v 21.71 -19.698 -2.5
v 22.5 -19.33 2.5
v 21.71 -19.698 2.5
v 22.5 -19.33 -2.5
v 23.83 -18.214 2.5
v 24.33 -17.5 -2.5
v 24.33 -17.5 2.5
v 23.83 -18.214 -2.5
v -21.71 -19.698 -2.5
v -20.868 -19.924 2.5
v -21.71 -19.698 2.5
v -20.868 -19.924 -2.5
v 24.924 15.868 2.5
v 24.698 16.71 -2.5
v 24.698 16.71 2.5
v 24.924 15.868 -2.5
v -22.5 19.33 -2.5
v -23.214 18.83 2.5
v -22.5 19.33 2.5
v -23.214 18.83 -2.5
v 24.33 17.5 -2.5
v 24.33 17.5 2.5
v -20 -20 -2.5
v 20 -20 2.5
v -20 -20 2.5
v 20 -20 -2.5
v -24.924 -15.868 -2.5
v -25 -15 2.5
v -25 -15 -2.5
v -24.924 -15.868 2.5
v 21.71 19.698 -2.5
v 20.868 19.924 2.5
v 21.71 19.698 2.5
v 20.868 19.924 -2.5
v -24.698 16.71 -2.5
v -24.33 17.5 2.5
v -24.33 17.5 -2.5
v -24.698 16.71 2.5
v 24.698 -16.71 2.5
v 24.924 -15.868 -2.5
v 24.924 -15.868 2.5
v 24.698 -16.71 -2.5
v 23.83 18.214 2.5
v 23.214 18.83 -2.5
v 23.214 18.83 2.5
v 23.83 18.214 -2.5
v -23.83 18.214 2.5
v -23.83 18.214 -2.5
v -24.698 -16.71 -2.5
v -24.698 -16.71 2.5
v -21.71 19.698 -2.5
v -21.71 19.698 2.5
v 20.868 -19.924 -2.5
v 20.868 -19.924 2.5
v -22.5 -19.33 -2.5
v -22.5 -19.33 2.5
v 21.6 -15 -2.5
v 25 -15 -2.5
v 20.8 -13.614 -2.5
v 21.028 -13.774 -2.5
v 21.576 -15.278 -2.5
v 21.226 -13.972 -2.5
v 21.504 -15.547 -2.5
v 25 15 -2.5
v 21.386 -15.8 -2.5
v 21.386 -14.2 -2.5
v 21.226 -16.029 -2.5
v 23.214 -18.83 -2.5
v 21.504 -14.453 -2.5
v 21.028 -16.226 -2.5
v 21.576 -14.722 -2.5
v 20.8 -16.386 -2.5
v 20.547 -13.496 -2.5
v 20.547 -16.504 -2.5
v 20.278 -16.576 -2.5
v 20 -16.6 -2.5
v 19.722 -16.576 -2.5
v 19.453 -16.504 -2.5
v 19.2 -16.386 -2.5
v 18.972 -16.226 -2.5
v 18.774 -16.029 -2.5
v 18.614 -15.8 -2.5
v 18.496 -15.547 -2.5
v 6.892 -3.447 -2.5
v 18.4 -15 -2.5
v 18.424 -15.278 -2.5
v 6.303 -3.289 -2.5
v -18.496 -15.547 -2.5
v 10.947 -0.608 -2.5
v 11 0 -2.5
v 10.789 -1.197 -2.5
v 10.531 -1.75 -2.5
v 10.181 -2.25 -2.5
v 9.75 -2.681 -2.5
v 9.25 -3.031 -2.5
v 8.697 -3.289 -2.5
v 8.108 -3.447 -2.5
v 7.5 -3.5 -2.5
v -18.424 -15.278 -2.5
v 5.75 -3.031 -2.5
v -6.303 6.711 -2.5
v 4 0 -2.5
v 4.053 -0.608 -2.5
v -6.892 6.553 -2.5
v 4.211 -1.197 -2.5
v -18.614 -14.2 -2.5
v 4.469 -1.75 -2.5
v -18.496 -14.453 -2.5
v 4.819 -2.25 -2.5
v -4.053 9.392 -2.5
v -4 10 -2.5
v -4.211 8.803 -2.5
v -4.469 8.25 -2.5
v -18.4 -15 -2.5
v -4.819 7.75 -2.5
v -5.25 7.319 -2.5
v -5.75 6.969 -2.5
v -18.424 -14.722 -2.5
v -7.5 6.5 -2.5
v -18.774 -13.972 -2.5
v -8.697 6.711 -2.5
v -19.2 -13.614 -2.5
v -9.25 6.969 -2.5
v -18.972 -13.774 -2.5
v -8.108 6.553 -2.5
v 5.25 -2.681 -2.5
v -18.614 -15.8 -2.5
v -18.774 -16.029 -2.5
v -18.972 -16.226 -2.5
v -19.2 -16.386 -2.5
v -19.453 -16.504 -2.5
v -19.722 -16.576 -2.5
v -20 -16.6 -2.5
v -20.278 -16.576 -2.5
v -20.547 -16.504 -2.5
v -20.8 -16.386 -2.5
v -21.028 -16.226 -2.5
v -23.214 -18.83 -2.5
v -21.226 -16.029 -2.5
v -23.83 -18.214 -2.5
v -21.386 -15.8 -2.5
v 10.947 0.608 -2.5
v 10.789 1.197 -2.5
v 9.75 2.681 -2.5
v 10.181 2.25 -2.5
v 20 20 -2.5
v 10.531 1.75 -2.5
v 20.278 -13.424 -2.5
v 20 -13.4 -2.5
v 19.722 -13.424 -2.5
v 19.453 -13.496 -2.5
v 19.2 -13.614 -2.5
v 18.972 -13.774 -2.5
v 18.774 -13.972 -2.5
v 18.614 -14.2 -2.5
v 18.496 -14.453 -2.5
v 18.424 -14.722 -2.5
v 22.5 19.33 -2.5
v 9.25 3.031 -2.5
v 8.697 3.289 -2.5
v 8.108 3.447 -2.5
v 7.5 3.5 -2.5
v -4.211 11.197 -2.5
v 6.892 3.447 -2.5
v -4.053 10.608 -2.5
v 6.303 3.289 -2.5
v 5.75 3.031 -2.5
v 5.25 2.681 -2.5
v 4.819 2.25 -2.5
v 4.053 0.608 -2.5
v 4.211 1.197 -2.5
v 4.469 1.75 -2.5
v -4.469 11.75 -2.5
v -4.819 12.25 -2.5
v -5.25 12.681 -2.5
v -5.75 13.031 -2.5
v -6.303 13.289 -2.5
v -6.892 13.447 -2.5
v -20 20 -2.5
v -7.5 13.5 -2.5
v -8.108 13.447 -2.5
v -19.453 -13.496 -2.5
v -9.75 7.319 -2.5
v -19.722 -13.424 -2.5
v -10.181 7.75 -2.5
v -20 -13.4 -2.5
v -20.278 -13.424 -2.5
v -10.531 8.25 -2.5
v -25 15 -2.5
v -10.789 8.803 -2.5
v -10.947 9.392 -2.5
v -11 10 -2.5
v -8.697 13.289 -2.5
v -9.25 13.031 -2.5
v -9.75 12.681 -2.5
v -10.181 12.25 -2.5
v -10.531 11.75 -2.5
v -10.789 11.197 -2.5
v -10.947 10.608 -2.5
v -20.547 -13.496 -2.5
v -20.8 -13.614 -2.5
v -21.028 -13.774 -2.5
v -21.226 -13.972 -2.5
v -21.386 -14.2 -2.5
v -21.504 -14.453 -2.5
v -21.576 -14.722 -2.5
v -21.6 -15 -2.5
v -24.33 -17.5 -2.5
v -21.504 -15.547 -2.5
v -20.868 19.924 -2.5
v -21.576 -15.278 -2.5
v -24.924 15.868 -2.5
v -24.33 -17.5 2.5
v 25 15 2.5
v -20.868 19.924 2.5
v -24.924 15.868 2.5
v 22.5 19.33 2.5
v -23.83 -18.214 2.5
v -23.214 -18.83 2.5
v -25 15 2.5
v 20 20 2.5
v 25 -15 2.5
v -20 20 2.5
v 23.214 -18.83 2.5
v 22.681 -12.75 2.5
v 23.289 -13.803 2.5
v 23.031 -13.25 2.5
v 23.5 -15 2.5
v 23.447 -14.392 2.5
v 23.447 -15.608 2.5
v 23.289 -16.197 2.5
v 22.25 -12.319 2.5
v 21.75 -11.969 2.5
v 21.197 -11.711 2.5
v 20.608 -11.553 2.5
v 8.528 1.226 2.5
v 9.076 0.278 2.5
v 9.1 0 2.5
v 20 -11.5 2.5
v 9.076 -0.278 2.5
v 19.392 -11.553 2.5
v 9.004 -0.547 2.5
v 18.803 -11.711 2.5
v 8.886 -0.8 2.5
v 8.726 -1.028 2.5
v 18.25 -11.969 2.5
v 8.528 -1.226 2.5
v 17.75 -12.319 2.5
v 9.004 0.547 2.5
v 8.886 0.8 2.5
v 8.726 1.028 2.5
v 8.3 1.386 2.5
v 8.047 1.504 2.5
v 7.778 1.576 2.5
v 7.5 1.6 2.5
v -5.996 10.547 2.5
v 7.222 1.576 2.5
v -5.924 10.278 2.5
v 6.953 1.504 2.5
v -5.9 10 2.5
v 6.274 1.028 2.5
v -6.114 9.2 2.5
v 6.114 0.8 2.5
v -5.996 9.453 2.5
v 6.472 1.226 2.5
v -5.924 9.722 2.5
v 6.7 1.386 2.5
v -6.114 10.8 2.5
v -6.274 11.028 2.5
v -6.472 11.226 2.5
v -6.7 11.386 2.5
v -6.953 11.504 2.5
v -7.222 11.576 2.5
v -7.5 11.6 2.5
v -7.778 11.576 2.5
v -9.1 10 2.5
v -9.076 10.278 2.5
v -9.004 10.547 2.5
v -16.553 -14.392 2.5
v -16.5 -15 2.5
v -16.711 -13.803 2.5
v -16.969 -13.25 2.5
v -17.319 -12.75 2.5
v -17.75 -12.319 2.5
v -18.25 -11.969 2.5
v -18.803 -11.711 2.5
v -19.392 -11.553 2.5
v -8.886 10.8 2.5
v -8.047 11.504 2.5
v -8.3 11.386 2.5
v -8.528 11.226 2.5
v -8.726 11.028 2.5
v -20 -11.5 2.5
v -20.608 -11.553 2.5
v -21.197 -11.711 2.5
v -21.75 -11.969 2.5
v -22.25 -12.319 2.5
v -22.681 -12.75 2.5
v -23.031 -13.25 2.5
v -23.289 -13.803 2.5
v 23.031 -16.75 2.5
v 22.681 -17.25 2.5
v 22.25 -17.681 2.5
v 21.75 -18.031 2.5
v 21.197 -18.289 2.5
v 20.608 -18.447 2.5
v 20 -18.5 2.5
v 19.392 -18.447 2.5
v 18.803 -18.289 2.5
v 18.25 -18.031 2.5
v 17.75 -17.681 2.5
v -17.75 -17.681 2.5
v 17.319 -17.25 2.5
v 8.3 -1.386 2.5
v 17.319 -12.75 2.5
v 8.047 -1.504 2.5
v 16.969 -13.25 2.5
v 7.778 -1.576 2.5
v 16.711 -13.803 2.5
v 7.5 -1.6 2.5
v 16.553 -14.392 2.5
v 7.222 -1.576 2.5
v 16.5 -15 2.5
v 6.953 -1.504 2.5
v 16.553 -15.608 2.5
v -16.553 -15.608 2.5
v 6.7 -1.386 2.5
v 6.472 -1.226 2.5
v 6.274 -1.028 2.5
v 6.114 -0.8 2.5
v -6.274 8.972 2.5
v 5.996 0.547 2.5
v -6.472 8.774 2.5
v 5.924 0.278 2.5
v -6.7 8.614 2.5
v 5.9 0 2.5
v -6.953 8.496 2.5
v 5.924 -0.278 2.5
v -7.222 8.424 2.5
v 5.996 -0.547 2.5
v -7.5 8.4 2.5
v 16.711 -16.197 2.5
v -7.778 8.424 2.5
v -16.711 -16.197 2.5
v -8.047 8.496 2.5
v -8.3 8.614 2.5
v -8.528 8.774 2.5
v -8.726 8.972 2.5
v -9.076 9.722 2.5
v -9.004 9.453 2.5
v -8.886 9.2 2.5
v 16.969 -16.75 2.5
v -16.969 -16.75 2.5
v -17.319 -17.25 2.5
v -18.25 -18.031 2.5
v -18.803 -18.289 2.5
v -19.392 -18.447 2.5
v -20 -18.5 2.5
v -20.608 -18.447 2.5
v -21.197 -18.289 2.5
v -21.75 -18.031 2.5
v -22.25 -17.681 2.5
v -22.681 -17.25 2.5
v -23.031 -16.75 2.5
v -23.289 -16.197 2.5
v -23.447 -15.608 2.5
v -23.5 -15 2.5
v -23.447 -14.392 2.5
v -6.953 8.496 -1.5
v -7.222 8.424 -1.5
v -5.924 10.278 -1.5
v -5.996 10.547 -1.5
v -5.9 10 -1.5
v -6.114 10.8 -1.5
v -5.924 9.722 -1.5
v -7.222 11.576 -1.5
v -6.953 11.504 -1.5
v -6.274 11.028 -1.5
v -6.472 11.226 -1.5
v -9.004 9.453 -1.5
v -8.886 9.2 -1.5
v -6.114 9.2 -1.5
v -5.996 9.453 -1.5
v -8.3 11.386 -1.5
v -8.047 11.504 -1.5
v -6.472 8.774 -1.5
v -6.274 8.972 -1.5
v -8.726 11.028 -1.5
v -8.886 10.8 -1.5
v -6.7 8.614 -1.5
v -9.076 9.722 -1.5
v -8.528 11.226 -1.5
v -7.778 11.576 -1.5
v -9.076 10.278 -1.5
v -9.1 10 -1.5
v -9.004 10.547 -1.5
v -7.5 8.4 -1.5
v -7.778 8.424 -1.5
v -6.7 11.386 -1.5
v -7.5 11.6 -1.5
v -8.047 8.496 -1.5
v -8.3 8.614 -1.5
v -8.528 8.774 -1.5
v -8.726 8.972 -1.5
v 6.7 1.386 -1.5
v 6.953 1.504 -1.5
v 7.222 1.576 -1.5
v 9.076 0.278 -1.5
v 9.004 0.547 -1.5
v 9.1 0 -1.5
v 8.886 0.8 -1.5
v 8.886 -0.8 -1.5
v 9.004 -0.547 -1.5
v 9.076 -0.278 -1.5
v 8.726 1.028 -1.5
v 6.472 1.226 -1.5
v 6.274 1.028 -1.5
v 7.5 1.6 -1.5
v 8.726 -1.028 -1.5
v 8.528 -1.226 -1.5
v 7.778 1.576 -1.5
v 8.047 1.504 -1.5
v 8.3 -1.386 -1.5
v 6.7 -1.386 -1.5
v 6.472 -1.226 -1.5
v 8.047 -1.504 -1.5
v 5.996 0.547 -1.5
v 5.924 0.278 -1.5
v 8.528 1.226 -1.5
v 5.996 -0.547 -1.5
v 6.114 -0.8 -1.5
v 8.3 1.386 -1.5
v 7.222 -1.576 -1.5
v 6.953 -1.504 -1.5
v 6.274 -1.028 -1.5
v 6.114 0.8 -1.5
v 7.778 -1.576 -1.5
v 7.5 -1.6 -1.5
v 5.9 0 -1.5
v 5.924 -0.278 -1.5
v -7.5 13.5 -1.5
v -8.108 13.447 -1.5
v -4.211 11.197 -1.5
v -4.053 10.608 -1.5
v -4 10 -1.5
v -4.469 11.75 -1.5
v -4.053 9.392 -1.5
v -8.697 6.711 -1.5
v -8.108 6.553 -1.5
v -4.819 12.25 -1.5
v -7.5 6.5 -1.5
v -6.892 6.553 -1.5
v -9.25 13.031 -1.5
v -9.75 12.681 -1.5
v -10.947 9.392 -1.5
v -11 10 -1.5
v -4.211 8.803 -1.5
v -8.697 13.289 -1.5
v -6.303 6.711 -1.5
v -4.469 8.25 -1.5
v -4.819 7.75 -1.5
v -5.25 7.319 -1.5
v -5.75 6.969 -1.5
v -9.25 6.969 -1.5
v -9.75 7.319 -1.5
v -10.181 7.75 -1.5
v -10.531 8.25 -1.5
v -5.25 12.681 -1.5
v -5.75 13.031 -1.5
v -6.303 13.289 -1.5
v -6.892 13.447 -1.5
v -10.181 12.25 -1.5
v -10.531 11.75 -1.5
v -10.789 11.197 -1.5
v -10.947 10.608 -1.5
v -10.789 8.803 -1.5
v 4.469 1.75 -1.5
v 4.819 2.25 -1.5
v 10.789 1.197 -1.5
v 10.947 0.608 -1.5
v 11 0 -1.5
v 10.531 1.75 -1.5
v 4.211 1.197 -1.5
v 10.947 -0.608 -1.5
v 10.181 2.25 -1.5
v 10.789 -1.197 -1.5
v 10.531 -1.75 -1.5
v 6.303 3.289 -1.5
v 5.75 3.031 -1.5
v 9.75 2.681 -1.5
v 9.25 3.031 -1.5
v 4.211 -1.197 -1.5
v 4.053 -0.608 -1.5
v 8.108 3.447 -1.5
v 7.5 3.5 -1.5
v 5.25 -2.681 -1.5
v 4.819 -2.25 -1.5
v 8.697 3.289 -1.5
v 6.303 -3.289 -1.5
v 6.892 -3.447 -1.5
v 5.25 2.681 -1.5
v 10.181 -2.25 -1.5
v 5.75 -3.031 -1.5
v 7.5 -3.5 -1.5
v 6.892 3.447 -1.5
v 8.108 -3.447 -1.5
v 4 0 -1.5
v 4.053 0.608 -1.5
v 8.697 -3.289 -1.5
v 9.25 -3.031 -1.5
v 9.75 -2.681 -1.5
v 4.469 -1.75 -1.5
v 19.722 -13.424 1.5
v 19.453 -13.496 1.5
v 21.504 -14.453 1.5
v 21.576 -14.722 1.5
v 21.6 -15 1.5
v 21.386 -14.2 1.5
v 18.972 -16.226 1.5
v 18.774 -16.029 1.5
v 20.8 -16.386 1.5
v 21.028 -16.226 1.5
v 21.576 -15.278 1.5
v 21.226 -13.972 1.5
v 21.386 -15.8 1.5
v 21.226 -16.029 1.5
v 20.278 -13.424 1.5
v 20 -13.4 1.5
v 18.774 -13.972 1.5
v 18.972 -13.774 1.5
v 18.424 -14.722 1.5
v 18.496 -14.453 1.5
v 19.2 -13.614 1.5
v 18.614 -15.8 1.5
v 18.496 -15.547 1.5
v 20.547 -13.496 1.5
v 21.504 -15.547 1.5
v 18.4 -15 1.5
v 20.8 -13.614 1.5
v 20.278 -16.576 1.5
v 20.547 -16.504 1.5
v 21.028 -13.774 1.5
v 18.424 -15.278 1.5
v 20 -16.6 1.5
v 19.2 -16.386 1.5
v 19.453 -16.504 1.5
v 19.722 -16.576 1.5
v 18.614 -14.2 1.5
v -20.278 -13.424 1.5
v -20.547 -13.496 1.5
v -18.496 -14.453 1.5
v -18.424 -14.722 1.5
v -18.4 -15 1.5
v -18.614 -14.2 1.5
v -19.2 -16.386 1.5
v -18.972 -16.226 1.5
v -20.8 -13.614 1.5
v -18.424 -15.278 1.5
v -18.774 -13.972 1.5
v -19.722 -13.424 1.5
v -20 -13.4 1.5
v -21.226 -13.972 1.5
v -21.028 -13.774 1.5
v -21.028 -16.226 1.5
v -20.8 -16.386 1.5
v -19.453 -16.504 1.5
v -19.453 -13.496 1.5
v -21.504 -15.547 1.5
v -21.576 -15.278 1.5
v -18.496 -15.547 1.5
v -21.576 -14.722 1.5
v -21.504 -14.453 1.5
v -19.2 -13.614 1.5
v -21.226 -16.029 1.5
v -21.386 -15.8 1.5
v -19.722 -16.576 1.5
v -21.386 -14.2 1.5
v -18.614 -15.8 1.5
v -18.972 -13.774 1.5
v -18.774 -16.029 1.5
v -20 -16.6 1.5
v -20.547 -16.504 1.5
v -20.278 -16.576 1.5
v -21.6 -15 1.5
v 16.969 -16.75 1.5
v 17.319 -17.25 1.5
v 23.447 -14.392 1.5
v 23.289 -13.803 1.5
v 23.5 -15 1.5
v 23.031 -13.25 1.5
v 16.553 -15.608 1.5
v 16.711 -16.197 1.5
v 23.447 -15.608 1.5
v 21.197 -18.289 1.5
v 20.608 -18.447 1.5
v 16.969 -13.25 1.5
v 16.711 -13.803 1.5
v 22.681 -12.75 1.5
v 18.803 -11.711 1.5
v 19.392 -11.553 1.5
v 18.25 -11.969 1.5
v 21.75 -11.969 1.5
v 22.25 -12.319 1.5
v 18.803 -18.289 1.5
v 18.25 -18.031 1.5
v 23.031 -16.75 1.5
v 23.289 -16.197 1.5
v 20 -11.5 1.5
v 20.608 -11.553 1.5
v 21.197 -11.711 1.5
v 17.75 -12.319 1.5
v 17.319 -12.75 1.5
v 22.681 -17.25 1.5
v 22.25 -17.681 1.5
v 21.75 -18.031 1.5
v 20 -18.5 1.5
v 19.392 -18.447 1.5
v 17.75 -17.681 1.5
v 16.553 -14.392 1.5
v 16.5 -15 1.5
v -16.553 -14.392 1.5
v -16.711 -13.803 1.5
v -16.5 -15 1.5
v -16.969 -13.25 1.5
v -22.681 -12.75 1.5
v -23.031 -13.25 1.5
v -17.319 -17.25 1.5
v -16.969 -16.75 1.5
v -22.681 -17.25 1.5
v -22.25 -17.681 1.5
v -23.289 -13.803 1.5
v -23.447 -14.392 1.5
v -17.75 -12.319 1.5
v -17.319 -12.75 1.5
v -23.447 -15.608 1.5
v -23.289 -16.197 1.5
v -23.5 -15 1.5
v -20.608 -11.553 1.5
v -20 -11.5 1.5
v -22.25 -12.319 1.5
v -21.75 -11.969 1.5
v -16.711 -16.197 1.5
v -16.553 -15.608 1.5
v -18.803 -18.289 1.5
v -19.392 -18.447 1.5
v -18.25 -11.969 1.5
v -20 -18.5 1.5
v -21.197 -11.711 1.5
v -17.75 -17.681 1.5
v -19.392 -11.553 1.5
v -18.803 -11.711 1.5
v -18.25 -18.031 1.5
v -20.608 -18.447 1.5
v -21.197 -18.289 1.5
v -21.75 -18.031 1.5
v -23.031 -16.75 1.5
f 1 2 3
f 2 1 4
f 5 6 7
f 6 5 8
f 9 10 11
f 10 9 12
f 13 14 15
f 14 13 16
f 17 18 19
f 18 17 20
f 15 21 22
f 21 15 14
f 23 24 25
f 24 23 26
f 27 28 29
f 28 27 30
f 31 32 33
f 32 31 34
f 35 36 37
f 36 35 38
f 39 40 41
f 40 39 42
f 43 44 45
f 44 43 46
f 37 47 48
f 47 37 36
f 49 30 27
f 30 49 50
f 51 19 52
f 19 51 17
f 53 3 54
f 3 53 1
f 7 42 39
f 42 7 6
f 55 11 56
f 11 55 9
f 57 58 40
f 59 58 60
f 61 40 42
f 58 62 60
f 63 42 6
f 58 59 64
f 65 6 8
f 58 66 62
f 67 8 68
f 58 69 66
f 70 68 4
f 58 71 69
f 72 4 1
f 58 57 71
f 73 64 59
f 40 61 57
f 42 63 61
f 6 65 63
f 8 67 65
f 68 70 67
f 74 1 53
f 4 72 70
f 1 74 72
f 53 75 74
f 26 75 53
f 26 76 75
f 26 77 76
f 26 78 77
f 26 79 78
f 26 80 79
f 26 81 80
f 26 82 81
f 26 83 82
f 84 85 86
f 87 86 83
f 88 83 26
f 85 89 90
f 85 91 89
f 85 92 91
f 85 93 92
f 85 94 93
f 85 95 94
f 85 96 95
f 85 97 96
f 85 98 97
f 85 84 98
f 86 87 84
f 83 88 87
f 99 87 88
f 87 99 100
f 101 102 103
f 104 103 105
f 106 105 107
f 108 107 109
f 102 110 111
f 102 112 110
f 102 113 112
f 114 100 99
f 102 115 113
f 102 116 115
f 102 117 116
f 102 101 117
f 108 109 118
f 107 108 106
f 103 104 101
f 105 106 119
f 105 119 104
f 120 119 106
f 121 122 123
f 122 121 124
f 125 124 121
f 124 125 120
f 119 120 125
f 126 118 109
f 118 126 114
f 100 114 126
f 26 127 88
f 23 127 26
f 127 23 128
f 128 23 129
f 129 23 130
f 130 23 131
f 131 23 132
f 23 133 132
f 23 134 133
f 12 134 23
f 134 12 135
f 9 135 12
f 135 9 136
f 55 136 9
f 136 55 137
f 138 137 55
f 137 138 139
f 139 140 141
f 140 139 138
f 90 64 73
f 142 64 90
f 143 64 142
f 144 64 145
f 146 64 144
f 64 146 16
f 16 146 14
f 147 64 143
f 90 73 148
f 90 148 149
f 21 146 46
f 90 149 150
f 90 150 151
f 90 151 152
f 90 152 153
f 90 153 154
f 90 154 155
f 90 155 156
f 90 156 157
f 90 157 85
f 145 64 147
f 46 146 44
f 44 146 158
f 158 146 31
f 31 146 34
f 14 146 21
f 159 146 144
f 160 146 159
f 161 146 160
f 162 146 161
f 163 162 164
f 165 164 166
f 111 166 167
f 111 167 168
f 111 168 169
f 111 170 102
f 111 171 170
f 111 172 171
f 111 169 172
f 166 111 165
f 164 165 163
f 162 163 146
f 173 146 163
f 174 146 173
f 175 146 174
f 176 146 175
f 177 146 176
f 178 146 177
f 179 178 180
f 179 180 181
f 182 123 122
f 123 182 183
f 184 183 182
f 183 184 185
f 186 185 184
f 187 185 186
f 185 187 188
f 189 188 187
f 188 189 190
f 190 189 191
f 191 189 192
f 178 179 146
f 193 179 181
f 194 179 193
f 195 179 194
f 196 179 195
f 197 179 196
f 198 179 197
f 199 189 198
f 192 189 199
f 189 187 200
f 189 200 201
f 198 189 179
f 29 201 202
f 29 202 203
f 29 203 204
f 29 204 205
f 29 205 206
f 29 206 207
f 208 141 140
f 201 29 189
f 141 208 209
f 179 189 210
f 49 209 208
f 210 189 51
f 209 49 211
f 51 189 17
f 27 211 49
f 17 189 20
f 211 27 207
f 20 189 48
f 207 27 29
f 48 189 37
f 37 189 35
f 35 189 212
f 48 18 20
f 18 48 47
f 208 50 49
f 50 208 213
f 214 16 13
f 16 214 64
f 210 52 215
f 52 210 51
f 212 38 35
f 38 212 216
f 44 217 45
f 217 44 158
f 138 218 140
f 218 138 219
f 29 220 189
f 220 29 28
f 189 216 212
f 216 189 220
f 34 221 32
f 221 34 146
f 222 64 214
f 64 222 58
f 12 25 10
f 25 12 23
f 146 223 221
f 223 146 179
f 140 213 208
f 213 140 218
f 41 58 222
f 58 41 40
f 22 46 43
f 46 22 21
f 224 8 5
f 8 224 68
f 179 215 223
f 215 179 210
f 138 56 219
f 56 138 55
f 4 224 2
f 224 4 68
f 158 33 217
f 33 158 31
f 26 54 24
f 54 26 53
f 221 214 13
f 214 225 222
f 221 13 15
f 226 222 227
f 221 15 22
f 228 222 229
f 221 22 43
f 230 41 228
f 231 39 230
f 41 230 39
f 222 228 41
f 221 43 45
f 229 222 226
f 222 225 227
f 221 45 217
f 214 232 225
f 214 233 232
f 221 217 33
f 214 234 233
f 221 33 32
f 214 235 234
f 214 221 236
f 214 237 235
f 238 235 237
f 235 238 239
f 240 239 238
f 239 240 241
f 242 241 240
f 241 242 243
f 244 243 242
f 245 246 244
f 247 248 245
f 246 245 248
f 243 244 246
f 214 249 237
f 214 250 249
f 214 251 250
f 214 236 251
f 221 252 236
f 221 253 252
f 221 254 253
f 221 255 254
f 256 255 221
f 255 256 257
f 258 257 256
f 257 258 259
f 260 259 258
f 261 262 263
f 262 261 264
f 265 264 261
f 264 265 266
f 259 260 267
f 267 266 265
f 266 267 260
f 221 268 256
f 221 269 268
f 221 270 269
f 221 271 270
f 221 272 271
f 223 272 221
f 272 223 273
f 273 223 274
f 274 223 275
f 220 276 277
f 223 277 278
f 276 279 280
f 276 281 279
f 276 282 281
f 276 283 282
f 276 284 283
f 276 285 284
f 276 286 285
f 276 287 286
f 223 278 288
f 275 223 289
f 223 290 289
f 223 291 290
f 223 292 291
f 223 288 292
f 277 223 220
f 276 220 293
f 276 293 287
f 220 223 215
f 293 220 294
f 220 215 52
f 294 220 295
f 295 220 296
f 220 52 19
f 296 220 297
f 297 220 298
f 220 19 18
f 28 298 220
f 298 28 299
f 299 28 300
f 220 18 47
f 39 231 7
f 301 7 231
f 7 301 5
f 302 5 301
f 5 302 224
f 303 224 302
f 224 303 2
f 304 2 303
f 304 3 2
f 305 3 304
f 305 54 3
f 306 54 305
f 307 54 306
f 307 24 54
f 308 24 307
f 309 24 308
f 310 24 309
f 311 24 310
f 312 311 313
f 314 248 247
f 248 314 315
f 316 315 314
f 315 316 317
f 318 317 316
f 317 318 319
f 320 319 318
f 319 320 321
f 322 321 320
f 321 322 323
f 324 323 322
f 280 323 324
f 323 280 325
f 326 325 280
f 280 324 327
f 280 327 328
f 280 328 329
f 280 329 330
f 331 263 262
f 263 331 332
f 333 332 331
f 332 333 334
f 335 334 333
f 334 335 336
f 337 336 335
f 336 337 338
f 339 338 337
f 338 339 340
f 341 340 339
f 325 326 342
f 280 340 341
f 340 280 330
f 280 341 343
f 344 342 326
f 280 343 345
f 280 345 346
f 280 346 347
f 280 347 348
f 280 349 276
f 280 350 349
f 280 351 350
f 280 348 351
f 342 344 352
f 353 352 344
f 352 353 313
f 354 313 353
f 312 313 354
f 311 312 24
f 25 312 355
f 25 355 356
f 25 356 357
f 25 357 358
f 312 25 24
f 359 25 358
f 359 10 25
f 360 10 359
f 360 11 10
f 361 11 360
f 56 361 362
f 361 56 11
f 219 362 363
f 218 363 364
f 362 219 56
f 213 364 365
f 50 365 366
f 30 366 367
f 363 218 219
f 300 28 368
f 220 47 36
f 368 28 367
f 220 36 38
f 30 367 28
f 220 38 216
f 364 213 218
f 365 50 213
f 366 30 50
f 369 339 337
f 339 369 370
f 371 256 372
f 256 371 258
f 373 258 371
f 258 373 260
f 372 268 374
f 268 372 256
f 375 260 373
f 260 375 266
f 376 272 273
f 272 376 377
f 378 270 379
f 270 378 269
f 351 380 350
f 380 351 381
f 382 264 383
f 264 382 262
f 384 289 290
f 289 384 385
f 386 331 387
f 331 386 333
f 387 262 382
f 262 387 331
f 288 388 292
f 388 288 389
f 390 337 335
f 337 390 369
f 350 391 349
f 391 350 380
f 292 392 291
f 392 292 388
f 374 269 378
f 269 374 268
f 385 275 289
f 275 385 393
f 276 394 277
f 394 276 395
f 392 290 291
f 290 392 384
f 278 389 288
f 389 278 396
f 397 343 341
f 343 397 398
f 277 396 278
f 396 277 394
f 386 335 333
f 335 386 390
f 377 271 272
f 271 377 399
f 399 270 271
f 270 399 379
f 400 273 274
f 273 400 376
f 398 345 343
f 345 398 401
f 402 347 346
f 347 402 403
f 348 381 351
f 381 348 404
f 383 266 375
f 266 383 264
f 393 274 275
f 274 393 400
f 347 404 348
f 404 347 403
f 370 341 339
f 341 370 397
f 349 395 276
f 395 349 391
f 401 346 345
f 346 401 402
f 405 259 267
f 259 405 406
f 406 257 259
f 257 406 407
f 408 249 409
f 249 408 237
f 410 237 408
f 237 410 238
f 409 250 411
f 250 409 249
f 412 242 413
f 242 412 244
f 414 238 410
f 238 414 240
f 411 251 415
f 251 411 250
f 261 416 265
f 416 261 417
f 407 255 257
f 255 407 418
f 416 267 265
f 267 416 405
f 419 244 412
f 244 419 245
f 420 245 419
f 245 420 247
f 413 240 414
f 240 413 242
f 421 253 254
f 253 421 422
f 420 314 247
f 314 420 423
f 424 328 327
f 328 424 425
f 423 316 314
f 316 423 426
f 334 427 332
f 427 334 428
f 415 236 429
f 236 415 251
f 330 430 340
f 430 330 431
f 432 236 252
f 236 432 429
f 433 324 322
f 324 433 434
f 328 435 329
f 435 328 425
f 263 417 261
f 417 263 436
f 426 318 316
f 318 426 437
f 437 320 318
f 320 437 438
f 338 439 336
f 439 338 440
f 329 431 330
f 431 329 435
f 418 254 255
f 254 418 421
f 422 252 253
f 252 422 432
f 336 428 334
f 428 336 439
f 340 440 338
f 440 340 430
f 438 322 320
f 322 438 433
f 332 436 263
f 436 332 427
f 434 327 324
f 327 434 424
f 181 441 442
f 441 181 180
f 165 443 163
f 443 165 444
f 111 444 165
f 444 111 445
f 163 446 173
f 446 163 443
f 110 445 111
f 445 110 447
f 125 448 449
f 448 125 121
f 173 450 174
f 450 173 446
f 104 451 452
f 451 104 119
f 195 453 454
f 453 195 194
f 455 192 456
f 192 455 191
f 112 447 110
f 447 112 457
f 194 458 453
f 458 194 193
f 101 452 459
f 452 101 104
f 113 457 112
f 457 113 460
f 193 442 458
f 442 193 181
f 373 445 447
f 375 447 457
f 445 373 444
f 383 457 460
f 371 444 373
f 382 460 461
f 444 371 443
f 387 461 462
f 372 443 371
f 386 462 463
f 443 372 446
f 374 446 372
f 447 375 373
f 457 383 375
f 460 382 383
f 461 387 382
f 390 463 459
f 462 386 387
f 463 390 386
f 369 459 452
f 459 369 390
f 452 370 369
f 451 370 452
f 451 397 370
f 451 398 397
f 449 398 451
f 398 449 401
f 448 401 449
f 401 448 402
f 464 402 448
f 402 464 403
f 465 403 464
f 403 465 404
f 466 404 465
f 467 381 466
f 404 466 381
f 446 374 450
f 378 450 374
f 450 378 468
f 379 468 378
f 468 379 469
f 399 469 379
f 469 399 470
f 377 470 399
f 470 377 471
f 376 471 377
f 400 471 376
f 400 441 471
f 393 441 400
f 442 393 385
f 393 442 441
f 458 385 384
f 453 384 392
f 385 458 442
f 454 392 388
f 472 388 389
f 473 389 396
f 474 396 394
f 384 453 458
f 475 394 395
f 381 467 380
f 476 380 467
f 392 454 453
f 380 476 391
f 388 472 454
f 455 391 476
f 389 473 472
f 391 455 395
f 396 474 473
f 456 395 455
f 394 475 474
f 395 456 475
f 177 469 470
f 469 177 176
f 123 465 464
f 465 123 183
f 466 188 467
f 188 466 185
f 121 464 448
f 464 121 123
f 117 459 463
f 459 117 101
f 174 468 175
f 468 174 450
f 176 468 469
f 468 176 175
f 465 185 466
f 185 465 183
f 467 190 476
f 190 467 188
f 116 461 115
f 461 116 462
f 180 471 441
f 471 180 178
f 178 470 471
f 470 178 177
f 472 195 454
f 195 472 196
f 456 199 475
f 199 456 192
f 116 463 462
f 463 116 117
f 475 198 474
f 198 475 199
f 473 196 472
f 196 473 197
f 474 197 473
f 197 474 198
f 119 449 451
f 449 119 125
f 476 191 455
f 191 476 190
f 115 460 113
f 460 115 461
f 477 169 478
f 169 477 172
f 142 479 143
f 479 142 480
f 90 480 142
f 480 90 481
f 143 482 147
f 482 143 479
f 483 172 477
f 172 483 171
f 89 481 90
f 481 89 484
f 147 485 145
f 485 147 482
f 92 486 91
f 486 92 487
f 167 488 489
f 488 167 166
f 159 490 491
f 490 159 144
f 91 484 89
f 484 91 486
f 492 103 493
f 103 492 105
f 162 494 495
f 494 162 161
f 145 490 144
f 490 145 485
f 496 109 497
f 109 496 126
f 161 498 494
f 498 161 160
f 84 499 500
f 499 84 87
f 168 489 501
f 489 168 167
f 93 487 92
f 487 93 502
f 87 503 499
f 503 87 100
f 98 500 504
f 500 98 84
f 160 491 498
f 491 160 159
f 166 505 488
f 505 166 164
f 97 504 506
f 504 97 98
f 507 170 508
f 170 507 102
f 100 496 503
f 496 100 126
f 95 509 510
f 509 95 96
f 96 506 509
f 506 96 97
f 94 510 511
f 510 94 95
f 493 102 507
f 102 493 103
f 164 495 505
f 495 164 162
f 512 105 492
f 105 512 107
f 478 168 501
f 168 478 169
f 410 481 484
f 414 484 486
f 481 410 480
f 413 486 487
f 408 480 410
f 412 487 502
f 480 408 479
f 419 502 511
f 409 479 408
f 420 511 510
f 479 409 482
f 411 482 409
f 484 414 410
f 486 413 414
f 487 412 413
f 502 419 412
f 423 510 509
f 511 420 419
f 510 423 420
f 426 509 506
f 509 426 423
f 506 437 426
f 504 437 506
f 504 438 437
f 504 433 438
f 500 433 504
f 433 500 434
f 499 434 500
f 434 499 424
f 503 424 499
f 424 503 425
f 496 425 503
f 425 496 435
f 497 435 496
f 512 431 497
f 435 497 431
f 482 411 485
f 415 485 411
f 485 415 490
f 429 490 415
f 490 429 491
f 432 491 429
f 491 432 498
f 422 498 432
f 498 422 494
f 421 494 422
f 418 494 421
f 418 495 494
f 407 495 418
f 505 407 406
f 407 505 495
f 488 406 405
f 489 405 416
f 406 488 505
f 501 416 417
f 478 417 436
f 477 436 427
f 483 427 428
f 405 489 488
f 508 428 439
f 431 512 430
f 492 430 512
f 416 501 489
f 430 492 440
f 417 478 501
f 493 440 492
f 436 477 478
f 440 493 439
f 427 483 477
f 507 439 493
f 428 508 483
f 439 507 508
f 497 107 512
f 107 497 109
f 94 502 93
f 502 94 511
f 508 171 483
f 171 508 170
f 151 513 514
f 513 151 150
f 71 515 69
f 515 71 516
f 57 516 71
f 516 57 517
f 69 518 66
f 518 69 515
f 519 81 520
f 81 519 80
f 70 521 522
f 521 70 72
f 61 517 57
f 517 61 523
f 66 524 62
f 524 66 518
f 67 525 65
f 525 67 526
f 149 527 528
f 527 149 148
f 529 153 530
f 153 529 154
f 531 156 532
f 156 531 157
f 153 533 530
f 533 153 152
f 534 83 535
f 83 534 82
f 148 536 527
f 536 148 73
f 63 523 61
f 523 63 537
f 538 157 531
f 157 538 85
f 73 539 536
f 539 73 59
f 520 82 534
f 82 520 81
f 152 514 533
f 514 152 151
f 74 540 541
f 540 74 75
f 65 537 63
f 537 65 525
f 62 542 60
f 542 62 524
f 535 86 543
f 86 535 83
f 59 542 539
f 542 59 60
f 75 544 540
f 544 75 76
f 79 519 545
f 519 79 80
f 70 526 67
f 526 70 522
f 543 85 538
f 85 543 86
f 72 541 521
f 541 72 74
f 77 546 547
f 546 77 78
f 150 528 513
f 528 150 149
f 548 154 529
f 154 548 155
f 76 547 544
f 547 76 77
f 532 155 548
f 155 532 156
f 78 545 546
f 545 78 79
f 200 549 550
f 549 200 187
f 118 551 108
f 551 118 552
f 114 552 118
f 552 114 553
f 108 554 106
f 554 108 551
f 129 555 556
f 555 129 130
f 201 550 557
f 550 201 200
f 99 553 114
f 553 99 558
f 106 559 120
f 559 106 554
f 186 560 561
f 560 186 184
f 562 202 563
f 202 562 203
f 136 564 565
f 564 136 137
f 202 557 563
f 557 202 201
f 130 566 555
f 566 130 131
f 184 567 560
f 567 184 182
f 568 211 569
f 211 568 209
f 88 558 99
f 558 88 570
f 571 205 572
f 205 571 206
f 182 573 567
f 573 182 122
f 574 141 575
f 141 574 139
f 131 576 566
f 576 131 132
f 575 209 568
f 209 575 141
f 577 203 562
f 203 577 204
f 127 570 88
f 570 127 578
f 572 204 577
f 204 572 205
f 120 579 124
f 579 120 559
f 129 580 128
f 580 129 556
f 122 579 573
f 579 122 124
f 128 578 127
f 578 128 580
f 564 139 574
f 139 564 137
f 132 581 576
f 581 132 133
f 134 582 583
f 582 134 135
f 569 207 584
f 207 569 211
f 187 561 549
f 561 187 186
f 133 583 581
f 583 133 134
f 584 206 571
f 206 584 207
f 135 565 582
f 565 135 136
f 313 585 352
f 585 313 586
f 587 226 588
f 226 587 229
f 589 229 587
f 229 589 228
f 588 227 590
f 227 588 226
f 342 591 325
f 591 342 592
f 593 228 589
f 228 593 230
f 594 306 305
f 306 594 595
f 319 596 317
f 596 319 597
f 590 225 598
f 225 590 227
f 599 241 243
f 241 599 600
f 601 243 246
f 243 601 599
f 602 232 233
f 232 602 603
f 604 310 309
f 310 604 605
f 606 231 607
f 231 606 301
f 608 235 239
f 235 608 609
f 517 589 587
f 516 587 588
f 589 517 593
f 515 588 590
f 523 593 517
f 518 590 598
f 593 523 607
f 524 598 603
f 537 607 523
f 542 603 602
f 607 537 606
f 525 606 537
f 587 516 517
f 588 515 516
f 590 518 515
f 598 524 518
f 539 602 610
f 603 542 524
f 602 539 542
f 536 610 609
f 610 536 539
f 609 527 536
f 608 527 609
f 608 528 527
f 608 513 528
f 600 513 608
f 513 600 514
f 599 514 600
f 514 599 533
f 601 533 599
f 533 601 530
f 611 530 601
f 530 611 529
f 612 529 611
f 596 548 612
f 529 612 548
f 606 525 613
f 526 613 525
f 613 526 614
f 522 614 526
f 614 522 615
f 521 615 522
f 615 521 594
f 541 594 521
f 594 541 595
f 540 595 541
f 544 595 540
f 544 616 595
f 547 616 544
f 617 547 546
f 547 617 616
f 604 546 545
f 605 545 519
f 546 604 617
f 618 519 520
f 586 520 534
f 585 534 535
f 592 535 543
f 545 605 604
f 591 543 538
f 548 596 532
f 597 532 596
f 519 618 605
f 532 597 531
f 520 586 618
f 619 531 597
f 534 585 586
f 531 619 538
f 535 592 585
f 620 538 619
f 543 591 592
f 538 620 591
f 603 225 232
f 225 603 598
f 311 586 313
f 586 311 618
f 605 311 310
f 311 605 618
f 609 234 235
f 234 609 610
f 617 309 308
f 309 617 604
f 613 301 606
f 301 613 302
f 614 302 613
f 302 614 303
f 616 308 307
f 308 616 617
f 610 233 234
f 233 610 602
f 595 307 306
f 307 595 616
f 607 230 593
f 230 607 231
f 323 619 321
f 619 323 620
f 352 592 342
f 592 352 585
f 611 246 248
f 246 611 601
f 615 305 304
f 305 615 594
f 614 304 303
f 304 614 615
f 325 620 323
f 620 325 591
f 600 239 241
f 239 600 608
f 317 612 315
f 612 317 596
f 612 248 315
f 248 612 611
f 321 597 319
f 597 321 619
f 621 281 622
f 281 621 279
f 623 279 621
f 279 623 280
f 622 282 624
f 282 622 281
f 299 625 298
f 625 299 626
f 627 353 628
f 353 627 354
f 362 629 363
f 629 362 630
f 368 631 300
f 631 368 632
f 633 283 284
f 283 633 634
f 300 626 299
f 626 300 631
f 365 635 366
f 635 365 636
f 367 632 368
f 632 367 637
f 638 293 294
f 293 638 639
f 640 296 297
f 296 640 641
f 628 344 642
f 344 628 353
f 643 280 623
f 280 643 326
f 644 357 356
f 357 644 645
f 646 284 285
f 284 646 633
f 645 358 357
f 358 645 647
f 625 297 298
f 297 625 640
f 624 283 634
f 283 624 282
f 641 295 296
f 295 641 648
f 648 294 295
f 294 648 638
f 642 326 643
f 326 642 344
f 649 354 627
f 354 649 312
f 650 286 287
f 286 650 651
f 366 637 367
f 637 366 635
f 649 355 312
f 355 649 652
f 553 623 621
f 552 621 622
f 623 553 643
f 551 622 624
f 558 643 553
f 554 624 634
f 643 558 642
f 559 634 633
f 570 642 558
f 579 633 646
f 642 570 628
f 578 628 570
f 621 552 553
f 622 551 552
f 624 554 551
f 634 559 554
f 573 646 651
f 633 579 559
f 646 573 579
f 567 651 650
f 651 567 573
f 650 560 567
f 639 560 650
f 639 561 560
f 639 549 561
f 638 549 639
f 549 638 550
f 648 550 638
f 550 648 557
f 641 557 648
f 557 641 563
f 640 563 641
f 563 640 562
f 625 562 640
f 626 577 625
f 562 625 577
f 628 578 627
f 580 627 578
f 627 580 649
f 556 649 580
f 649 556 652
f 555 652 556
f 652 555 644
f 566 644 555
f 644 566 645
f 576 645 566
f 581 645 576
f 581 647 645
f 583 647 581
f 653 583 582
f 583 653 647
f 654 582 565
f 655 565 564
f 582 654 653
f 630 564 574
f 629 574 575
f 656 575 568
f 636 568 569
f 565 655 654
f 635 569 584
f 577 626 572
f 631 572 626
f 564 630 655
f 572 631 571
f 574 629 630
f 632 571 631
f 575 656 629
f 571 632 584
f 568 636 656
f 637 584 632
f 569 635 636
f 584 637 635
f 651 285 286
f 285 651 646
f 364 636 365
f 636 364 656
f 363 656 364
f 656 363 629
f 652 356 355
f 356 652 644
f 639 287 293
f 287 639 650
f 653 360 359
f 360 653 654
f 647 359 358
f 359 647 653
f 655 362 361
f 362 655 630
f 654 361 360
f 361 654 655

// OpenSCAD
/*
 * Machdyne PNP
 * Copyright (c) 2023 Lone Dynamics Corporation. All rights reserved.
 *
 * Solenoid Mount
 *
 * This part attaches the solenoid to rail.
 *
 * Required hardware:
 * - 2 x M3 x 8mm bolts for rail mounting
 * - 2 x M3 t-nuts
 * - 2 x M3 x 6mm bolts for solenoid mounting
 *
 */
 
$fn = 36;
 
sm();
 
module sm() {
	
	difference() {
		
		translate([-50/2,-40/2,-5/2]) roundedcube(50,40,5,5);

		// solenoid mount holes
		translate([-7.5,5+5,-30]) cylinder(d=3.2, h=100);
		translate([7.5,-5+5,-30]) cylinder(d=3.2, h=100);

		translate([-7.5,5+5,-4.5+1]) cylinder(d=7, h=2);
		translate([7.5,-5+5,-4.5+1]) cylinder(d=7, h=2);

				
		// y axis t nut mount holes
		translate([20,-15,-30]) cylinder(d=3.2, h=100);
		translate([-20,-15,-30]) cylinder(d=3.2, h=100);

		translate([20,-15,2.5-1]) cylinder(d=7, h=100);
		translate([-20,-15,2.5-1]) cylinder(d=7, h=100);
		
		
	}

	
}


// https://gist.github.com/tinkerology/ae257c5340a33ee2f149ff3ae97d9826
module roundedcube(xx, yy, height, radius)
{
    translate([0,0,height/2])
    hull()
    {
        translate([radius,radius,0])
        cylinder(height,radius,radius,true);

        translate([xx-radius,radius,0])
        cylinder(height,radius,radius,true);

        translate([xx-radius,yy-radius,0])
        cylinder(height,radius,radius,true);

        translate([radius,yy-radius,0])
        cylinder(height,radius,radius,true);
    }
}
